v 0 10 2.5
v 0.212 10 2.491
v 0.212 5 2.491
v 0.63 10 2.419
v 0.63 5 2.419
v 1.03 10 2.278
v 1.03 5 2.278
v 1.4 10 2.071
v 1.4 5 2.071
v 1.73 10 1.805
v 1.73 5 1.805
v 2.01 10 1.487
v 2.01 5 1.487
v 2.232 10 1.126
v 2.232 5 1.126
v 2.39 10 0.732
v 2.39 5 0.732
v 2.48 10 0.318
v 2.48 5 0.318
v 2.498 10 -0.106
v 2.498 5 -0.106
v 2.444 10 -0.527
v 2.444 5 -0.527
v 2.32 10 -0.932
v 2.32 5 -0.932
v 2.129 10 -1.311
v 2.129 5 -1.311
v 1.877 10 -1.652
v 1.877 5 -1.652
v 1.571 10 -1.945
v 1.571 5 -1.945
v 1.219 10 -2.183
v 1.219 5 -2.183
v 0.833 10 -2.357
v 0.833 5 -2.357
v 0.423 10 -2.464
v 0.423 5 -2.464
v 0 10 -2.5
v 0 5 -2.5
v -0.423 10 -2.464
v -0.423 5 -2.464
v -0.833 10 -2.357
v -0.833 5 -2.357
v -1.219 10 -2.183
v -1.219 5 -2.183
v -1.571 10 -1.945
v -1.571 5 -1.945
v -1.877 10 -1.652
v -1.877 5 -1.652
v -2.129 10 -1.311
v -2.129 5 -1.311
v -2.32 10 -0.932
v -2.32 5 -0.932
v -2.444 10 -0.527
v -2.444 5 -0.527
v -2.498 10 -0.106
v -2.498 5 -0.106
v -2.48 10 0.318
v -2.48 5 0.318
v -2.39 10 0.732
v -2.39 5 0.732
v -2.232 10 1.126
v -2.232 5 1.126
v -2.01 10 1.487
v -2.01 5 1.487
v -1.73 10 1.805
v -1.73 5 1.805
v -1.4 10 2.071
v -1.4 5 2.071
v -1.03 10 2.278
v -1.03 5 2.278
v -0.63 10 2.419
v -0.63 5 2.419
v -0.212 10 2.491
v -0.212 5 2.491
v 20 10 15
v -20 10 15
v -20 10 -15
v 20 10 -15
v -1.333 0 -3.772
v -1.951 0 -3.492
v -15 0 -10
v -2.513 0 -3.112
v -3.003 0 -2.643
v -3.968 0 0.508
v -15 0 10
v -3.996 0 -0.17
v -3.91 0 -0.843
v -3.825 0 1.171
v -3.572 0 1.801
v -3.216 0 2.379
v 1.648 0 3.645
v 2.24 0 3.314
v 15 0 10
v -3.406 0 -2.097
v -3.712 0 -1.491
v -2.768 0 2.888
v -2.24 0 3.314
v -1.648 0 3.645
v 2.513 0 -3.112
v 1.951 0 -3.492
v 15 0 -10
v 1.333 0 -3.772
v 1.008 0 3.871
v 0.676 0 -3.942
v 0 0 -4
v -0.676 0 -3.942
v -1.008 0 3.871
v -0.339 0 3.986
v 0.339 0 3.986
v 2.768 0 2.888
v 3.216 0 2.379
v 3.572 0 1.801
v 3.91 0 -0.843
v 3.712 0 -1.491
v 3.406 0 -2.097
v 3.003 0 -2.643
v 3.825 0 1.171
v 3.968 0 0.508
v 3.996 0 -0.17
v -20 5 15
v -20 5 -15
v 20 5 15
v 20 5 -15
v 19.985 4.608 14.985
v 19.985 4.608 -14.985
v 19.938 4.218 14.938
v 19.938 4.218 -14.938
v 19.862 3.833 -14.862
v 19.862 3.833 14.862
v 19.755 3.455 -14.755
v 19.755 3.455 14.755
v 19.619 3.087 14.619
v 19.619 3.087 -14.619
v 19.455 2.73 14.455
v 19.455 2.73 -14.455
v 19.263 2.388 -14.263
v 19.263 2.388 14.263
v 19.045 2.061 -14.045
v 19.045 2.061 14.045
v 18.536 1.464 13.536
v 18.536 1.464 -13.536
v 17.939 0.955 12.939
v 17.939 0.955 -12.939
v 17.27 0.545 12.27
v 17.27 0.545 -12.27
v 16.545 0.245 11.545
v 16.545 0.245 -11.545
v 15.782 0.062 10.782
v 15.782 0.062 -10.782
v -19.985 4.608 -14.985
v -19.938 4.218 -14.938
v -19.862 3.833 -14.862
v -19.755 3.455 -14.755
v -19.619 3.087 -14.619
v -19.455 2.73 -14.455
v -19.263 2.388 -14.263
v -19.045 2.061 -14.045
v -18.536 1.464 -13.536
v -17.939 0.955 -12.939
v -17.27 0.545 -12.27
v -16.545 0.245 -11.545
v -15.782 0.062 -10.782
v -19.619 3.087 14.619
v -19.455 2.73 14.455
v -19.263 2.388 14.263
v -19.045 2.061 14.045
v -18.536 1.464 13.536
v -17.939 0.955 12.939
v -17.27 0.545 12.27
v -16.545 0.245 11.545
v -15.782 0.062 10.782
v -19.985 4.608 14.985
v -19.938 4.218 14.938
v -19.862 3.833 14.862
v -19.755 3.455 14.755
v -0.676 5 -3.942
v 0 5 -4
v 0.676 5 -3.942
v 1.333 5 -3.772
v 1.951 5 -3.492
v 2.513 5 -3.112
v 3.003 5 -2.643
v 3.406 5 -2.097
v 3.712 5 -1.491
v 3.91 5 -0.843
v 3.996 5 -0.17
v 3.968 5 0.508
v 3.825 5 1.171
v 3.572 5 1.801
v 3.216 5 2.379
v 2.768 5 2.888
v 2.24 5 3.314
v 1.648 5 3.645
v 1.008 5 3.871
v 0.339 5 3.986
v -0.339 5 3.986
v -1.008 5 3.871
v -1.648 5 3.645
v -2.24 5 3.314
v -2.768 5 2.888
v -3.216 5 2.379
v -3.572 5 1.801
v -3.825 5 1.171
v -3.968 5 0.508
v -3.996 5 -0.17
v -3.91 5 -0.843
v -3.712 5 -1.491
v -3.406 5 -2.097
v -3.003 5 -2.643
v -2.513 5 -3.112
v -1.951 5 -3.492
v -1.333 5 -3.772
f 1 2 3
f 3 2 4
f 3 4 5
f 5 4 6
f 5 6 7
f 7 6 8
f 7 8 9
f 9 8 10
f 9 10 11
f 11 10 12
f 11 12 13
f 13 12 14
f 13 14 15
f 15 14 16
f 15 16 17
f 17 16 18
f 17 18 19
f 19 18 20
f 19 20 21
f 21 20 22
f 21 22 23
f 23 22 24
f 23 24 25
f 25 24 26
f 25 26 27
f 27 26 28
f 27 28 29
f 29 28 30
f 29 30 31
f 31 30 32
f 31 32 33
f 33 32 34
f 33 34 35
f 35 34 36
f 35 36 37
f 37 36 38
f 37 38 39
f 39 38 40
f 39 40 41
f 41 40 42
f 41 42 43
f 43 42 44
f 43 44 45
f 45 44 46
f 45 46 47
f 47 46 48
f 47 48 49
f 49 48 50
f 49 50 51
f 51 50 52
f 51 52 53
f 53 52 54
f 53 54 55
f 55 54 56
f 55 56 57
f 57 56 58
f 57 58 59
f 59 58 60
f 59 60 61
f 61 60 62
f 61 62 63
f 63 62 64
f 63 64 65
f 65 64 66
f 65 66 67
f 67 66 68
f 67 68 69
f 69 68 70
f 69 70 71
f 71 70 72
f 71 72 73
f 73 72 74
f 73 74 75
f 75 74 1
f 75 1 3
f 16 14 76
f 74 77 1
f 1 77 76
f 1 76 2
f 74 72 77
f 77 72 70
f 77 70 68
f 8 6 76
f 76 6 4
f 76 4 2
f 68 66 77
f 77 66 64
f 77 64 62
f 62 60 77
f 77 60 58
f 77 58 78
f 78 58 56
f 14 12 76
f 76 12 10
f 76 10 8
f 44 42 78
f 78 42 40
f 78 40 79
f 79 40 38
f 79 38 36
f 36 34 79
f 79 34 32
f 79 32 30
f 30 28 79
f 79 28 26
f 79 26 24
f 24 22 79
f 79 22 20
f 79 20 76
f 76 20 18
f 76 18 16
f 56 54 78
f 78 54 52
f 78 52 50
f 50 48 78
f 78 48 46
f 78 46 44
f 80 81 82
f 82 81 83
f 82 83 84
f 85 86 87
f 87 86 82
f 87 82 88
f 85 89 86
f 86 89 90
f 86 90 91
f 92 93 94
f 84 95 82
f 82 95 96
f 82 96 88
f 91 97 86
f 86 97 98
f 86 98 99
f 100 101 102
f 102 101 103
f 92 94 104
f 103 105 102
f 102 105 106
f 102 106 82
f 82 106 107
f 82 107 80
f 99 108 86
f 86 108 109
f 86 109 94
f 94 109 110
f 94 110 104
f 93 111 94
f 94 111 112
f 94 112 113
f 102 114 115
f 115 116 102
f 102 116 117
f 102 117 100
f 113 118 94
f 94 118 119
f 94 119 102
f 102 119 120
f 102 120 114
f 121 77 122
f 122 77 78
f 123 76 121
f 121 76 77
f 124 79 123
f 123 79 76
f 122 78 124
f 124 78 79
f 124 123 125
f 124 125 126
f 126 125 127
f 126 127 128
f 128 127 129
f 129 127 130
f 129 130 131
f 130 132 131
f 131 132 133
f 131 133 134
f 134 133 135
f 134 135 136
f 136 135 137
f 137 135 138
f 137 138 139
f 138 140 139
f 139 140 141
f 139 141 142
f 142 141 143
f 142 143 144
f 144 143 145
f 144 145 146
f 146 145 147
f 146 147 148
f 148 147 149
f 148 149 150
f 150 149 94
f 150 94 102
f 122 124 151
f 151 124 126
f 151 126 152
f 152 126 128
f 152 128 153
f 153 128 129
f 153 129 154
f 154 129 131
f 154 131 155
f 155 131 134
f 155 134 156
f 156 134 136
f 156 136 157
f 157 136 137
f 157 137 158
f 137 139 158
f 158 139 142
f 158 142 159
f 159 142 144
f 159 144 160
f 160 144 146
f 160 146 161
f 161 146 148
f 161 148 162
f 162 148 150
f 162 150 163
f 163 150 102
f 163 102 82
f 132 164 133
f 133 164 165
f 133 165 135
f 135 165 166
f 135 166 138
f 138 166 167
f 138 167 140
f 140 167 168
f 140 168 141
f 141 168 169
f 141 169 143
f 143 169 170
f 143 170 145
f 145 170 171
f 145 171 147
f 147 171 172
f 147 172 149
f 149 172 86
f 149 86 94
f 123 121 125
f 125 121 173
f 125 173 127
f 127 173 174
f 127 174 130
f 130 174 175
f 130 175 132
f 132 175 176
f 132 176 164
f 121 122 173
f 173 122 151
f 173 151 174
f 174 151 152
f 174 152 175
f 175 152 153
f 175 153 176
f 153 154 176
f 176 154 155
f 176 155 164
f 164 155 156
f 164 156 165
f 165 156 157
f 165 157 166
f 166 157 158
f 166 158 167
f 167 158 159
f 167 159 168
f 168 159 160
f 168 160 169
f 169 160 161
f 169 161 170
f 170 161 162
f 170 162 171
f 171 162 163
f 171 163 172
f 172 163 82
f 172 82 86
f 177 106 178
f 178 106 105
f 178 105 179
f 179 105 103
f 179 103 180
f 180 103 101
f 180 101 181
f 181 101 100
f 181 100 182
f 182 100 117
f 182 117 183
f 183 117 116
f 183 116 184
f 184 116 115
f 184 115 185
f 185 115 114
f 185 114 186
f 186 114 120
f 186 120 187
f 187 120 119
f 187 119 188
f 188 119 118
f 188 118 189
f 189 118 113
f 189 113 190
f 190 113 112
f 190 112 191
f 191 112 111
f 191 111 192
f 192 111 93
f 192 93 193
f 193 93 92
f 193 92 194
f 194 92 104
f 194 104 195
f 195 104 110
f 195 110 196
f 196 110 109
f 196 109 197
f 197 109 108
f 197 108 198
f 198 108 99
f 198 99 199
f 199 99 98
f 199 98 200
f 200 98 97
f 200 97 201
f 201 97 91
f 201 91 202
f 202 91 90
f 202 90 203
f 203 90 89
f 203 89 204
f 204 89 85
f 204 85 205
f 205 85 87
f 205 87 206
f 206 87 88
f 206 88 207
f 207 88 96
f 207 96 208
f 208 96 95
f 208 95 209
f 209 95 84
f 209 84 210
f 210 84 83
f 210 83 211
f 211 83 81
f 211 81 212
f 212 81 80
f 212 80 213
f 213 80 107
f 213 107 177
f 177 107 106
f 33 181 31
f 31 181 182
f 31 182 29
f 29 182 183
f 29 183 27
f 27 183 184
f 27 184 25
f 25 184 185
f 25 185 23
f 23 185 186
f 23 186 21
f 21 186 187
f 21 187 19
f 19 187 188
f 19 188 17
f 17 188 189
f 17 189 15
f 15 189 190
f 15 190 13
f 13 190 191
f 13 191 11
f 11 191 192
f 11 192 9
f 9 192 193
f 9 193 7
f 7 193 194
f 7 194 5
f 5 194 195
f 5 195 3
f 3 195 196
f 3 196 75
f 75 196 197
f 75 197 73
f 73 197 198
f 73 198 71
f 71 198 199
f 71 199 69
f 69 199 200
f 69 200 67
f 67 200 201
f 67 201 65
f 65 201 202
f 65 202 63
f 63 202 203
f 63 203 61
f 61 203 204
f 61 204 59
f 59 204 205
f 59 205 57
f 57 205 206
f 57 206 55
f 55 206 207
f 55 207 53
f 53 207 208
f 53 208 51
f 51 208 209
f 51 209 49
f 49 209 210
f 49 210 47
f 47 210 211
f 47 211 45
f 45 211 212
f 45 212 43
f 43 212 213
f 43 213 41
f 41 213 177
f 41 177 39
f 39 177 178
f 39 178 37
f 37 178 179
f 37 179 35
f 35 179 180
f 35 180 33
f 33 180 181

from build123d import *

# Parameters (mm, degrees)
ESQUISSE1_W     = 40
ESQUISSE1_H     = 30
ESQUISSE1_R     = 2.5
BASE_DEPTH      = 10
EXT_R           = 5
ESQUISSE2_R     = 4
ACCES_VIS_DEPTH = 5


with BuildPart() as part:
    # Esquisse1 → BASE (new body)
    with BuildSketch(Plane(origin=(0, 0, 0), x_dir=(1, 0, 0), z_dir=(0, 1, 0))):
        Rectangle(ESQUISSE1_W, ESQUISSE1_H)
        with Locations(Location((0, 0, 0), (0, 0, 270))):
            Circle(ESQUISSE1_R, mode=Mode.SUBTRACT)
    extrude(amount=BASE_DEPTH)

    # EXT
    ext_edges = [part.edges().sort_by_distance(p)[0] for p in [
        (0, 0, -15),
        (20, 0, 0),
        (0, 0, 15),
        (-20, 0, 0),
    ]]
    fillet(ext_edges, radius=EXT_R)

    # Esquisse2 → ACCES VIS (cut)
    with BuildSketch(Plane(origin=(0, 0, 0), x_dir=(-1, 0, 0), z_dir=(0, -1, 0))):
        with Locations(Location((0, 0, 0), (0, 0, 90))):
            Circle(ESQUISSE2_R)
    extrude(amount=-ACCES_VIS_DEPTH, mode=Mode.SUBTRACT)


solid = part.part
